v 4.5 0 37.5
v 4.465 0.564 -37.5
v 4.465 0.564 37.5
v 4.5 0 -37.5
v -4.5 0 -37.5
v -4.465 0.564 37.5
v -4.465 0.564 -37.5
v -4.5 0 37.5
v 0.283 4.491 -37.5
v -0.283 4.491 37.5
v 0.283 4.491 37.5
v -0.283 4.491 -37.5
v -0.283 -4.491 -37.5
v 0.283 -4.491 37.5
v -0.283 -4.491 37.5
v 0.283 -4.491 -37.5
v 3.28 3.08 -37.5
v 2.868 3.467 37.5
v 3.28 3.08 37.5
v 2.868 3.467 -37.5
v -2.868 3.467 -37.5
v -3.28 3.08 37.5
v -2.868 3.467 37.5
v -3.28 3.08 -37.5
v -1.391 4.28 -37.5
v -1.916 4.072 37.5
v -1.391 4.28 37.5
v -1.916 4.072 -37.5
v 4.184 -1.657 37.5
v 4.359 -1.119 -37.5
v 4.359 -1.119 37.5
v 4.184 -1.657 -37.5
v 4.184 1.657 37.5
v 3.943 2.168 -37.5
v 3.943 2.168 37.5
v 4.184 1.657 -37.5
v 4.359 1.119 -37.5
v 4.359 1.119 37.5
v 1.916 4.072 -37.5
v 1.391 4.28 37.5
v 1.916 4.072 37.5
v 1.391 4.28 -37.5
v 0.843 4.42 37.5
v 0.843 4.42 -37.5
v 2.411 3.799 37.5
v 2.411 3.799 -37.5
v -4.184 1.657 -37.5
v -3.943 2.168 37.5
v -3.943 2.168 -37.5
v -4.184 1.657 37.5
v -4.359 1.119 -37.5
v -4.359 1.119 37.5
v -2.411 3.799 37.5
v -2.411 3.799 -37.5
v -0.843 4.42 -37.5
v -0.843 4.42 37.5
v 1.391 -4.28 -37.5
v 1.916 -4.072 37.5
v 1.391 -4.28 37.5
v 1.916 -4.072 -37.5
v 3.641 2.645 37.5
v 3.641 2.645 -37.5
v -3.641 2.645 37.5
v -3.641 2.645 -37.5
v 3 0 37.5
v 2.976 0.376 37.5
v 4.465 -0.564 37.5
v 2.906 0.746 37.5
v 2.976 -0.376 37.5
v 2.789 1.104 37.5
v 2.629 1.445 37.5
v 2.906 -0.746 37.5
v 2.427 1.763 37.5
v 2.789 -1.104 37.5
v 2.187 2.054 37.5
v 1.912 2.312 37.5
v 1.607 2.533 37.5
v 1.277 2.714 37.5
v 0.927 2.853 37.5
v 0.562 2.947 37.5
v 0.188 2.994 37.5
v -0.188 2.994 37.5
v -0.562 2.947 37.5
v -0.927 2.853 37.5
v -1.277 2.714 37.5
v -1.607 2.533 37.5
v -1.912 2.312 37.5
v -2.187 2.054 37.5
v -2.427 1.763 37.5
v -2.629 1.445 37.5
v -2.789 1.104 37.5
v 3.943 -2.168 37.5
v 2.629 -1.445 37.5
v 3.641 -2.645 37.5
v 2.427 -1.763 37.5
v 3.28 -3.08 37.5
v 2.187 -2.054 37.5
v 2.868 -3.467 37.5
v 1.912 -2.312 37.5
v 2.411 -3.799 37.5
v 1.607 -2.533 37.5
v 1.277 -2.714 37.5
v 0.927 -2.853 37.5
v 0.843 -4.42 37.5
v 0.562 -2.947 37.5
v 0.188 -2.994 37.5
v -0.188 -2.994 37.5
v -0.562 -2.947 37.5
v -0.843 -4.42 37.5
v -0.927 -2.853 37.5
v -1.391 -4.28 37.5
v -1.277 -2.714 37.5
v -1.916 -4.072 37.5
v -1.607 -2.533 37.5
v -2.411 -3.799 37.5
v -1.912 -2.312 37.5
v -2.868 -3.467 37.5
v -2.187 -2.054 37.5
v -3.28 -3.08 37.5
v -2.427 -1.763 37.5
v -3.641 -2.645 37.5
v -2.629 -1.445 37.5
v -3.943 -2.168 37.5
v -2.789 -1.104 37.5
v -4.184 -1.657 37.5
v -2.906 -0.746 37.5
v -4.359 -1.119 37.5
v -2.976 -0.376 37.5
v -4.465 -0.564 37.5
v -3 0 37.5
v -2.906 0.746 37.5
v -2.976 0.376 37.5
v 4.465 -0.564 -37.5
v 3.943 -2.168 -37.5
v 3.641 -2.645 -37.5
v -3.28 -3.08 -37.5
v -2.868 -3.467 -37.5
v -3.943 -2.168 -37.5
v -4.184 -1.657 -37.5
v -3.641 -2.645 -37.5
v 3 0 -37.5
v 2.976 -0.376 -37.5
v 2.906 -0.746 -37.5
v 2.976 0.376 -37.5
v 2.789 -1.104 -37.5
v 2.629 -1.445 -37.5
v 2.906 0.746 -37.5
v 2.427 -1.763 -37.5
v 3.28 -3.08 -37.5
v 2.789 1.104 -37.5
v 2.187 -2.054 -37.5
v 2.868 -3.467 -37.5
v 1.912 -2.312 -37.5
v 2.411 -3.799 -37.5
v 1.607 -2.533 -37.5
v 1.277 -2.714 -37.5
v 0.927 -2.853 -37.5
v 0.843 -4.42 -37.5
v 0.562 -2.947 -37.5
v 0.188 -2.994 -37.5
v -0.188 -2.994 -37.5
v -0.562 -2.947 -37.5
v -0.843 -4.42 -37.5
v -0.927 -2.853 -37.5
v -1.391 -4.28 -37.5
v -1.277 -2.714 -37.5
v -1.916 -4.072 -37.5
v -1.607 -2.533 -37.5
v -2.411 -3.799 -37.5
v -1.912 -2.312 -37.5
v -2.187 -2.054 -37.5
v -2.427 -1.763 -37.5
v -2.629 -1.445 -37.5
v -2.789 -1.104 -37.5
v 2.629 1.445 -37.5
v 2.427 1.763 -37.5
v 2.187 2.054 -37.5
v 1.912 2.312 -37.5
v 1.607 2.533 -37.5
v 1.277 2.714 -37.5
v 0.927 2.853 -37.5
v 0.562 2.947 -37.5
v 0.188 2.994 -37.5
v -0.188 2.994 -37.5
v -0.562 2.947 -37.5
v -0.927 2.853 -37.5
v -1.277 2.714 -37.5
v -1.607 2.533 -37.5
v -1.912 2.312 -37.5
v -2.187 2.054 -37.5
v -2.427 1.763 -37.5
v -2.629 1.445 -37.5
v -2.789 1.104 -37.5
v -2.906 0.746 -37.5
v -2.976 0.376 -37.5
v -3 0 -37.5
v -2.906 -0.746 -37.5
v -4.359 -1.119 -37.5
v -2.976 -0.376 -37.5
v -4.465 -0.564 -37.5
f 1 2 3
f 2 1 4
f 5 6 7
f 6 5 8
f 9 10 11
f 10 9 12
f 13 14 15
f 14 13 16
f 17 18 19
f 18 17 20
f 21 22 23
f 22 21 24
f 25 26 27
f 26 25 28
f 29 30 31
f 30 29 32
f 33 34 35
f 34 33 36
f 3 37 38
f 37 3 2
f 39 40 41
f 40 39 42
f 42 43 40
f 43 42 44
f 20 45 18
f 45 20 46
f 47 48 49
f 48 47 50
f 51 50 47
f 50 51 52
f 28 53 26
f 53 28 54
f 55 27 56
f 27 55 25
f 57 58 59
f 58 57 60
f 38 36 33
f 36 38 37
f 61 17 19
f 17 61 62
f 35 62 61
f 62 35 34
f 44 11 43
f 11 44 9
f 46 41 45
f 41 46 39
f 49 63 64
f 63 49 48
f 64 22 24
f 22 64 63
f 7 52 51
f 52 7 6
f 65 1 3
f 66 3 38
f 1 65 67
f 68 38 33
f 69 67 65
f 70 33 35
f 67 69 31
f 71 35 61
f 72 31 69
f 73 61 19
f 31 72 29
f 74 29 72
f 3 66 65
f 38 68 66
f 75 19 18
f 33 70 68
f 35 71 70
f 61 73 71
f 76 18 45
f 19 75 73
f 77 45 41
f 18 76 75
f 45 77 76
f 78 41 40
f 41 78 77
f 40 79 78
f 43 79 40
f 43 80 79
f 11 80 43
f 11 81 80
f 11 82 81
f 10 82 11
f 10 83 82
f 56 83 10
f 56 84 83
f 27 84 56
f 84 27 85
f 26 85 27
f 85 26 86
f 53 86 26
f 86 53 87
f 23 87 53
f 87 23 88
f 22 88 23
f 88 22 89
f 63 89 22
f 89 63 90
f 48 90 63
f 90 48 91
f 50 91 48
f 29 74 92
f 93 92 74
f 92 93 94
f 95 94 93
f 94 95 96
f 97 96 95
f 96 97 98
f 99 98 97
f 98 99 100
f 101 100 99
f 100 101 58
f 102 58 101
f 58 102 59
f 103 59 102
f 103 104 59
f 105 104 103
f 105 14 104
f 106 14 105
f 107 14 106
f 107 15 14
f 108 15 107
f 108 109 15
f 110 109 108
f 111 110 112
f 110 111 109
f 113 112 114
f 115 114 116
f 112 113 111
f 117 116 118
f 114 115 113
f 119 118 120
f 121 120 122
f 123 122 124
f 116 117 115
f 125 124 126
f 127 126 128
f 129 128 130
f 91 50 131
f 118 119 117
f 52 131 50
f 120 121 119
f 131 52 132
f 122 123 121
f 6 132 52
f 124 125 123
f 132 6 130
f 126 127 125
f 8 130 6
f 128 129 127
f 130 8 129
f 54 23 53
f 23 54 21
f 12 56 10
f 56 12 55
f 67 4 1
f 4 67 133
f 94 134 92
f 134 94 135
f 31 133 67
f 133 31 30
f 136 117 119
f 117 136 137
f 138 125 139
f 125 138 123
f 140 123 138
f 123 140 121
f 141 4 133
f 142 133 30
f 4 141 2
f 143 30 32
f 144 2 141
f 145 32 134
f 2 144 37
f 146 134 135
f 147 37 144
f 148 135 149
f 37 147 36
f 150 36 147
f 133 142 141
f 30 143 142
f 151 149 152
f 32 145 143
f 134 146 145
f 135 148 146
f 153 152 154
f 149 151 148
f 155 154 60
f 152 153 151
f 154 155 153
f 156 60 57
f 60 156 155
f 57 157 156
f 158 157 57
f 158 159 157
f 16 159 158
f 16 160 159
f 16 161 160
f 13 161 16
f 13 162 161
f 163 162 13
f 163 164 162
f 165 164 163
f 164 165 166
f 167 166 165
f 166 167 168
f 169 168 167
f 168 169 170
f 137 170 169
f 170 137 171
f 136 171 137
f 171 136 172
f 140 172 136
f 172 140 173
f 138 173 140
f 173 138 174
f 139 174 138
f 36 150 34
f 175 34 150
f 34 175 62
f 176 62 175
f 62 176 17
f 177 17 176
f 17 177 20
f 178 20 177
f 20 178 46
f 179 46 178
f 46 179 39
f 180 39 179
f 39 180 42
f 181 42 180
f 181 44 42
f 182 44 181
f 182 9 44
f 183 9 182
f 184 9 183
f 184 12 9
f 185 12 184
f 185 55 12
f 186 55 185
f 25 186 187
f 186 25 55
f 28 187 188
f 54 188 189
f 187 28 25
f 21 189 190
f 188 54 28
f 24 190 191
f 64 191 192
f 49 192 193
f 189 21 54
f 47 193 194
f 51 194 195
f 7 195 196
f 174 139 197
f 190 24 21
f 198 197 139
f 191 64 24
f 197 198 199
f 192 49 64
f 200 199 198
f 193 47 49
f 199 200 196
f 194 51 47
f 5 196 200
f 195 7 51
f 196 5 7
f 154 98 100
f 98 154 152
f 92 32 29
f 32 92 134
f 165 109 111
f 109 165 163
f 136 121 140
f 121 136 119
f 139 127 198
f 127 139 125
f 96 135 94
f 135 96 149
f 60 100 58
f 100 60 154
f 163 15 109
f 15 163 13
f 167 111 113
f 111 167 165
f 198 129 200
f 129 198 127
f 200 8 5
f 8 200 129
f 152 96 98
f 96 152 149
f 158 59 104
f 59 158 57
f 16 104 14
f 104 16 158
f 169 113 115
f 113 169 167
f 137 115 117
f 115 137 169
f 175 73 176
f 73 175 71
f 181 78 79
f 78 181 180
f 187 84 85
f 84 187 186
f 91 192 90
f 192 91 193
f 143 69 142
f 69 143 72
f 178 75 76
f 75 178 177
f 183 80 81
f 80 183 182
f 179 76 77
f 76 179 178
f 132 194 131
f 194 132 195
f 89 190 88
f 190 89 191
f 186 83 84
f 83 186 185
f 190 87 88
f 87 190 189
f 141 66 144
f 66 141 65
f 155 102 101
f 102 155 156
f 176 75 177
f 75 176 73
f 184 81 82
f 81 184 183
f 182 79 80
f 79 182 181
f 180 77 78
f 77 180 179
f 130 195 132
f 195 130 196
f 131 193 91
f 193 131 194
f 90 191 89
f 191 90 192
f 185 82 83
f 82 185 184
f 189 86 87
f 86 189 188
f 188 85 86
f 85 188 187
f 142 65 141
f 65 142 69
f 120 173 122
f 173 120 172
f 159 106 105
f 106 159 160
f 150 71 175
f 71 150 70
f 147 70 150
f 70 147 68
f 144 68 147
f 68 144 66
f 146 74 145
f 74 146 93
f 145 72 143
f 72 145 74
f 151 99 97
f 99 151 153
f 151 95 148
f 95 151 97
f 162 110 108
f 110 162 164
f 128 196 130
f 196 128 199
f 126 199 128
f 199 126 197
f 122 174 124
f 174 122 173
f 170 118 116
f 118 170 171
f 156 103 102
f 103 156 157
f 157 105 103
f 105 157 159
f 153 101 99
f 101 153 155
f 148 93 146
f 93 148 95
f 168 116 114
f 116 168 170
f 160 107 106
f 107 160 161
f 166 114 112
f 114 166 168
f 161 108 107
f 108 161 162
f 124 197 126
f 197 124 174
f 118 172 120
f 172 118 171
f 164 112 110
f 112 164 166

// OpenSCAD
$fn = 50;


difference() {
	union() {
		translate(v = [0, 0, -37.5000000000]) {
			cylinder(h = 75, r = 4.5000000000);
		}
	}
	union() {
		translate(v = [0, 0, -100.0000000000]) {
			cylinder(h = 200, r = 3);
		}
	}
}
